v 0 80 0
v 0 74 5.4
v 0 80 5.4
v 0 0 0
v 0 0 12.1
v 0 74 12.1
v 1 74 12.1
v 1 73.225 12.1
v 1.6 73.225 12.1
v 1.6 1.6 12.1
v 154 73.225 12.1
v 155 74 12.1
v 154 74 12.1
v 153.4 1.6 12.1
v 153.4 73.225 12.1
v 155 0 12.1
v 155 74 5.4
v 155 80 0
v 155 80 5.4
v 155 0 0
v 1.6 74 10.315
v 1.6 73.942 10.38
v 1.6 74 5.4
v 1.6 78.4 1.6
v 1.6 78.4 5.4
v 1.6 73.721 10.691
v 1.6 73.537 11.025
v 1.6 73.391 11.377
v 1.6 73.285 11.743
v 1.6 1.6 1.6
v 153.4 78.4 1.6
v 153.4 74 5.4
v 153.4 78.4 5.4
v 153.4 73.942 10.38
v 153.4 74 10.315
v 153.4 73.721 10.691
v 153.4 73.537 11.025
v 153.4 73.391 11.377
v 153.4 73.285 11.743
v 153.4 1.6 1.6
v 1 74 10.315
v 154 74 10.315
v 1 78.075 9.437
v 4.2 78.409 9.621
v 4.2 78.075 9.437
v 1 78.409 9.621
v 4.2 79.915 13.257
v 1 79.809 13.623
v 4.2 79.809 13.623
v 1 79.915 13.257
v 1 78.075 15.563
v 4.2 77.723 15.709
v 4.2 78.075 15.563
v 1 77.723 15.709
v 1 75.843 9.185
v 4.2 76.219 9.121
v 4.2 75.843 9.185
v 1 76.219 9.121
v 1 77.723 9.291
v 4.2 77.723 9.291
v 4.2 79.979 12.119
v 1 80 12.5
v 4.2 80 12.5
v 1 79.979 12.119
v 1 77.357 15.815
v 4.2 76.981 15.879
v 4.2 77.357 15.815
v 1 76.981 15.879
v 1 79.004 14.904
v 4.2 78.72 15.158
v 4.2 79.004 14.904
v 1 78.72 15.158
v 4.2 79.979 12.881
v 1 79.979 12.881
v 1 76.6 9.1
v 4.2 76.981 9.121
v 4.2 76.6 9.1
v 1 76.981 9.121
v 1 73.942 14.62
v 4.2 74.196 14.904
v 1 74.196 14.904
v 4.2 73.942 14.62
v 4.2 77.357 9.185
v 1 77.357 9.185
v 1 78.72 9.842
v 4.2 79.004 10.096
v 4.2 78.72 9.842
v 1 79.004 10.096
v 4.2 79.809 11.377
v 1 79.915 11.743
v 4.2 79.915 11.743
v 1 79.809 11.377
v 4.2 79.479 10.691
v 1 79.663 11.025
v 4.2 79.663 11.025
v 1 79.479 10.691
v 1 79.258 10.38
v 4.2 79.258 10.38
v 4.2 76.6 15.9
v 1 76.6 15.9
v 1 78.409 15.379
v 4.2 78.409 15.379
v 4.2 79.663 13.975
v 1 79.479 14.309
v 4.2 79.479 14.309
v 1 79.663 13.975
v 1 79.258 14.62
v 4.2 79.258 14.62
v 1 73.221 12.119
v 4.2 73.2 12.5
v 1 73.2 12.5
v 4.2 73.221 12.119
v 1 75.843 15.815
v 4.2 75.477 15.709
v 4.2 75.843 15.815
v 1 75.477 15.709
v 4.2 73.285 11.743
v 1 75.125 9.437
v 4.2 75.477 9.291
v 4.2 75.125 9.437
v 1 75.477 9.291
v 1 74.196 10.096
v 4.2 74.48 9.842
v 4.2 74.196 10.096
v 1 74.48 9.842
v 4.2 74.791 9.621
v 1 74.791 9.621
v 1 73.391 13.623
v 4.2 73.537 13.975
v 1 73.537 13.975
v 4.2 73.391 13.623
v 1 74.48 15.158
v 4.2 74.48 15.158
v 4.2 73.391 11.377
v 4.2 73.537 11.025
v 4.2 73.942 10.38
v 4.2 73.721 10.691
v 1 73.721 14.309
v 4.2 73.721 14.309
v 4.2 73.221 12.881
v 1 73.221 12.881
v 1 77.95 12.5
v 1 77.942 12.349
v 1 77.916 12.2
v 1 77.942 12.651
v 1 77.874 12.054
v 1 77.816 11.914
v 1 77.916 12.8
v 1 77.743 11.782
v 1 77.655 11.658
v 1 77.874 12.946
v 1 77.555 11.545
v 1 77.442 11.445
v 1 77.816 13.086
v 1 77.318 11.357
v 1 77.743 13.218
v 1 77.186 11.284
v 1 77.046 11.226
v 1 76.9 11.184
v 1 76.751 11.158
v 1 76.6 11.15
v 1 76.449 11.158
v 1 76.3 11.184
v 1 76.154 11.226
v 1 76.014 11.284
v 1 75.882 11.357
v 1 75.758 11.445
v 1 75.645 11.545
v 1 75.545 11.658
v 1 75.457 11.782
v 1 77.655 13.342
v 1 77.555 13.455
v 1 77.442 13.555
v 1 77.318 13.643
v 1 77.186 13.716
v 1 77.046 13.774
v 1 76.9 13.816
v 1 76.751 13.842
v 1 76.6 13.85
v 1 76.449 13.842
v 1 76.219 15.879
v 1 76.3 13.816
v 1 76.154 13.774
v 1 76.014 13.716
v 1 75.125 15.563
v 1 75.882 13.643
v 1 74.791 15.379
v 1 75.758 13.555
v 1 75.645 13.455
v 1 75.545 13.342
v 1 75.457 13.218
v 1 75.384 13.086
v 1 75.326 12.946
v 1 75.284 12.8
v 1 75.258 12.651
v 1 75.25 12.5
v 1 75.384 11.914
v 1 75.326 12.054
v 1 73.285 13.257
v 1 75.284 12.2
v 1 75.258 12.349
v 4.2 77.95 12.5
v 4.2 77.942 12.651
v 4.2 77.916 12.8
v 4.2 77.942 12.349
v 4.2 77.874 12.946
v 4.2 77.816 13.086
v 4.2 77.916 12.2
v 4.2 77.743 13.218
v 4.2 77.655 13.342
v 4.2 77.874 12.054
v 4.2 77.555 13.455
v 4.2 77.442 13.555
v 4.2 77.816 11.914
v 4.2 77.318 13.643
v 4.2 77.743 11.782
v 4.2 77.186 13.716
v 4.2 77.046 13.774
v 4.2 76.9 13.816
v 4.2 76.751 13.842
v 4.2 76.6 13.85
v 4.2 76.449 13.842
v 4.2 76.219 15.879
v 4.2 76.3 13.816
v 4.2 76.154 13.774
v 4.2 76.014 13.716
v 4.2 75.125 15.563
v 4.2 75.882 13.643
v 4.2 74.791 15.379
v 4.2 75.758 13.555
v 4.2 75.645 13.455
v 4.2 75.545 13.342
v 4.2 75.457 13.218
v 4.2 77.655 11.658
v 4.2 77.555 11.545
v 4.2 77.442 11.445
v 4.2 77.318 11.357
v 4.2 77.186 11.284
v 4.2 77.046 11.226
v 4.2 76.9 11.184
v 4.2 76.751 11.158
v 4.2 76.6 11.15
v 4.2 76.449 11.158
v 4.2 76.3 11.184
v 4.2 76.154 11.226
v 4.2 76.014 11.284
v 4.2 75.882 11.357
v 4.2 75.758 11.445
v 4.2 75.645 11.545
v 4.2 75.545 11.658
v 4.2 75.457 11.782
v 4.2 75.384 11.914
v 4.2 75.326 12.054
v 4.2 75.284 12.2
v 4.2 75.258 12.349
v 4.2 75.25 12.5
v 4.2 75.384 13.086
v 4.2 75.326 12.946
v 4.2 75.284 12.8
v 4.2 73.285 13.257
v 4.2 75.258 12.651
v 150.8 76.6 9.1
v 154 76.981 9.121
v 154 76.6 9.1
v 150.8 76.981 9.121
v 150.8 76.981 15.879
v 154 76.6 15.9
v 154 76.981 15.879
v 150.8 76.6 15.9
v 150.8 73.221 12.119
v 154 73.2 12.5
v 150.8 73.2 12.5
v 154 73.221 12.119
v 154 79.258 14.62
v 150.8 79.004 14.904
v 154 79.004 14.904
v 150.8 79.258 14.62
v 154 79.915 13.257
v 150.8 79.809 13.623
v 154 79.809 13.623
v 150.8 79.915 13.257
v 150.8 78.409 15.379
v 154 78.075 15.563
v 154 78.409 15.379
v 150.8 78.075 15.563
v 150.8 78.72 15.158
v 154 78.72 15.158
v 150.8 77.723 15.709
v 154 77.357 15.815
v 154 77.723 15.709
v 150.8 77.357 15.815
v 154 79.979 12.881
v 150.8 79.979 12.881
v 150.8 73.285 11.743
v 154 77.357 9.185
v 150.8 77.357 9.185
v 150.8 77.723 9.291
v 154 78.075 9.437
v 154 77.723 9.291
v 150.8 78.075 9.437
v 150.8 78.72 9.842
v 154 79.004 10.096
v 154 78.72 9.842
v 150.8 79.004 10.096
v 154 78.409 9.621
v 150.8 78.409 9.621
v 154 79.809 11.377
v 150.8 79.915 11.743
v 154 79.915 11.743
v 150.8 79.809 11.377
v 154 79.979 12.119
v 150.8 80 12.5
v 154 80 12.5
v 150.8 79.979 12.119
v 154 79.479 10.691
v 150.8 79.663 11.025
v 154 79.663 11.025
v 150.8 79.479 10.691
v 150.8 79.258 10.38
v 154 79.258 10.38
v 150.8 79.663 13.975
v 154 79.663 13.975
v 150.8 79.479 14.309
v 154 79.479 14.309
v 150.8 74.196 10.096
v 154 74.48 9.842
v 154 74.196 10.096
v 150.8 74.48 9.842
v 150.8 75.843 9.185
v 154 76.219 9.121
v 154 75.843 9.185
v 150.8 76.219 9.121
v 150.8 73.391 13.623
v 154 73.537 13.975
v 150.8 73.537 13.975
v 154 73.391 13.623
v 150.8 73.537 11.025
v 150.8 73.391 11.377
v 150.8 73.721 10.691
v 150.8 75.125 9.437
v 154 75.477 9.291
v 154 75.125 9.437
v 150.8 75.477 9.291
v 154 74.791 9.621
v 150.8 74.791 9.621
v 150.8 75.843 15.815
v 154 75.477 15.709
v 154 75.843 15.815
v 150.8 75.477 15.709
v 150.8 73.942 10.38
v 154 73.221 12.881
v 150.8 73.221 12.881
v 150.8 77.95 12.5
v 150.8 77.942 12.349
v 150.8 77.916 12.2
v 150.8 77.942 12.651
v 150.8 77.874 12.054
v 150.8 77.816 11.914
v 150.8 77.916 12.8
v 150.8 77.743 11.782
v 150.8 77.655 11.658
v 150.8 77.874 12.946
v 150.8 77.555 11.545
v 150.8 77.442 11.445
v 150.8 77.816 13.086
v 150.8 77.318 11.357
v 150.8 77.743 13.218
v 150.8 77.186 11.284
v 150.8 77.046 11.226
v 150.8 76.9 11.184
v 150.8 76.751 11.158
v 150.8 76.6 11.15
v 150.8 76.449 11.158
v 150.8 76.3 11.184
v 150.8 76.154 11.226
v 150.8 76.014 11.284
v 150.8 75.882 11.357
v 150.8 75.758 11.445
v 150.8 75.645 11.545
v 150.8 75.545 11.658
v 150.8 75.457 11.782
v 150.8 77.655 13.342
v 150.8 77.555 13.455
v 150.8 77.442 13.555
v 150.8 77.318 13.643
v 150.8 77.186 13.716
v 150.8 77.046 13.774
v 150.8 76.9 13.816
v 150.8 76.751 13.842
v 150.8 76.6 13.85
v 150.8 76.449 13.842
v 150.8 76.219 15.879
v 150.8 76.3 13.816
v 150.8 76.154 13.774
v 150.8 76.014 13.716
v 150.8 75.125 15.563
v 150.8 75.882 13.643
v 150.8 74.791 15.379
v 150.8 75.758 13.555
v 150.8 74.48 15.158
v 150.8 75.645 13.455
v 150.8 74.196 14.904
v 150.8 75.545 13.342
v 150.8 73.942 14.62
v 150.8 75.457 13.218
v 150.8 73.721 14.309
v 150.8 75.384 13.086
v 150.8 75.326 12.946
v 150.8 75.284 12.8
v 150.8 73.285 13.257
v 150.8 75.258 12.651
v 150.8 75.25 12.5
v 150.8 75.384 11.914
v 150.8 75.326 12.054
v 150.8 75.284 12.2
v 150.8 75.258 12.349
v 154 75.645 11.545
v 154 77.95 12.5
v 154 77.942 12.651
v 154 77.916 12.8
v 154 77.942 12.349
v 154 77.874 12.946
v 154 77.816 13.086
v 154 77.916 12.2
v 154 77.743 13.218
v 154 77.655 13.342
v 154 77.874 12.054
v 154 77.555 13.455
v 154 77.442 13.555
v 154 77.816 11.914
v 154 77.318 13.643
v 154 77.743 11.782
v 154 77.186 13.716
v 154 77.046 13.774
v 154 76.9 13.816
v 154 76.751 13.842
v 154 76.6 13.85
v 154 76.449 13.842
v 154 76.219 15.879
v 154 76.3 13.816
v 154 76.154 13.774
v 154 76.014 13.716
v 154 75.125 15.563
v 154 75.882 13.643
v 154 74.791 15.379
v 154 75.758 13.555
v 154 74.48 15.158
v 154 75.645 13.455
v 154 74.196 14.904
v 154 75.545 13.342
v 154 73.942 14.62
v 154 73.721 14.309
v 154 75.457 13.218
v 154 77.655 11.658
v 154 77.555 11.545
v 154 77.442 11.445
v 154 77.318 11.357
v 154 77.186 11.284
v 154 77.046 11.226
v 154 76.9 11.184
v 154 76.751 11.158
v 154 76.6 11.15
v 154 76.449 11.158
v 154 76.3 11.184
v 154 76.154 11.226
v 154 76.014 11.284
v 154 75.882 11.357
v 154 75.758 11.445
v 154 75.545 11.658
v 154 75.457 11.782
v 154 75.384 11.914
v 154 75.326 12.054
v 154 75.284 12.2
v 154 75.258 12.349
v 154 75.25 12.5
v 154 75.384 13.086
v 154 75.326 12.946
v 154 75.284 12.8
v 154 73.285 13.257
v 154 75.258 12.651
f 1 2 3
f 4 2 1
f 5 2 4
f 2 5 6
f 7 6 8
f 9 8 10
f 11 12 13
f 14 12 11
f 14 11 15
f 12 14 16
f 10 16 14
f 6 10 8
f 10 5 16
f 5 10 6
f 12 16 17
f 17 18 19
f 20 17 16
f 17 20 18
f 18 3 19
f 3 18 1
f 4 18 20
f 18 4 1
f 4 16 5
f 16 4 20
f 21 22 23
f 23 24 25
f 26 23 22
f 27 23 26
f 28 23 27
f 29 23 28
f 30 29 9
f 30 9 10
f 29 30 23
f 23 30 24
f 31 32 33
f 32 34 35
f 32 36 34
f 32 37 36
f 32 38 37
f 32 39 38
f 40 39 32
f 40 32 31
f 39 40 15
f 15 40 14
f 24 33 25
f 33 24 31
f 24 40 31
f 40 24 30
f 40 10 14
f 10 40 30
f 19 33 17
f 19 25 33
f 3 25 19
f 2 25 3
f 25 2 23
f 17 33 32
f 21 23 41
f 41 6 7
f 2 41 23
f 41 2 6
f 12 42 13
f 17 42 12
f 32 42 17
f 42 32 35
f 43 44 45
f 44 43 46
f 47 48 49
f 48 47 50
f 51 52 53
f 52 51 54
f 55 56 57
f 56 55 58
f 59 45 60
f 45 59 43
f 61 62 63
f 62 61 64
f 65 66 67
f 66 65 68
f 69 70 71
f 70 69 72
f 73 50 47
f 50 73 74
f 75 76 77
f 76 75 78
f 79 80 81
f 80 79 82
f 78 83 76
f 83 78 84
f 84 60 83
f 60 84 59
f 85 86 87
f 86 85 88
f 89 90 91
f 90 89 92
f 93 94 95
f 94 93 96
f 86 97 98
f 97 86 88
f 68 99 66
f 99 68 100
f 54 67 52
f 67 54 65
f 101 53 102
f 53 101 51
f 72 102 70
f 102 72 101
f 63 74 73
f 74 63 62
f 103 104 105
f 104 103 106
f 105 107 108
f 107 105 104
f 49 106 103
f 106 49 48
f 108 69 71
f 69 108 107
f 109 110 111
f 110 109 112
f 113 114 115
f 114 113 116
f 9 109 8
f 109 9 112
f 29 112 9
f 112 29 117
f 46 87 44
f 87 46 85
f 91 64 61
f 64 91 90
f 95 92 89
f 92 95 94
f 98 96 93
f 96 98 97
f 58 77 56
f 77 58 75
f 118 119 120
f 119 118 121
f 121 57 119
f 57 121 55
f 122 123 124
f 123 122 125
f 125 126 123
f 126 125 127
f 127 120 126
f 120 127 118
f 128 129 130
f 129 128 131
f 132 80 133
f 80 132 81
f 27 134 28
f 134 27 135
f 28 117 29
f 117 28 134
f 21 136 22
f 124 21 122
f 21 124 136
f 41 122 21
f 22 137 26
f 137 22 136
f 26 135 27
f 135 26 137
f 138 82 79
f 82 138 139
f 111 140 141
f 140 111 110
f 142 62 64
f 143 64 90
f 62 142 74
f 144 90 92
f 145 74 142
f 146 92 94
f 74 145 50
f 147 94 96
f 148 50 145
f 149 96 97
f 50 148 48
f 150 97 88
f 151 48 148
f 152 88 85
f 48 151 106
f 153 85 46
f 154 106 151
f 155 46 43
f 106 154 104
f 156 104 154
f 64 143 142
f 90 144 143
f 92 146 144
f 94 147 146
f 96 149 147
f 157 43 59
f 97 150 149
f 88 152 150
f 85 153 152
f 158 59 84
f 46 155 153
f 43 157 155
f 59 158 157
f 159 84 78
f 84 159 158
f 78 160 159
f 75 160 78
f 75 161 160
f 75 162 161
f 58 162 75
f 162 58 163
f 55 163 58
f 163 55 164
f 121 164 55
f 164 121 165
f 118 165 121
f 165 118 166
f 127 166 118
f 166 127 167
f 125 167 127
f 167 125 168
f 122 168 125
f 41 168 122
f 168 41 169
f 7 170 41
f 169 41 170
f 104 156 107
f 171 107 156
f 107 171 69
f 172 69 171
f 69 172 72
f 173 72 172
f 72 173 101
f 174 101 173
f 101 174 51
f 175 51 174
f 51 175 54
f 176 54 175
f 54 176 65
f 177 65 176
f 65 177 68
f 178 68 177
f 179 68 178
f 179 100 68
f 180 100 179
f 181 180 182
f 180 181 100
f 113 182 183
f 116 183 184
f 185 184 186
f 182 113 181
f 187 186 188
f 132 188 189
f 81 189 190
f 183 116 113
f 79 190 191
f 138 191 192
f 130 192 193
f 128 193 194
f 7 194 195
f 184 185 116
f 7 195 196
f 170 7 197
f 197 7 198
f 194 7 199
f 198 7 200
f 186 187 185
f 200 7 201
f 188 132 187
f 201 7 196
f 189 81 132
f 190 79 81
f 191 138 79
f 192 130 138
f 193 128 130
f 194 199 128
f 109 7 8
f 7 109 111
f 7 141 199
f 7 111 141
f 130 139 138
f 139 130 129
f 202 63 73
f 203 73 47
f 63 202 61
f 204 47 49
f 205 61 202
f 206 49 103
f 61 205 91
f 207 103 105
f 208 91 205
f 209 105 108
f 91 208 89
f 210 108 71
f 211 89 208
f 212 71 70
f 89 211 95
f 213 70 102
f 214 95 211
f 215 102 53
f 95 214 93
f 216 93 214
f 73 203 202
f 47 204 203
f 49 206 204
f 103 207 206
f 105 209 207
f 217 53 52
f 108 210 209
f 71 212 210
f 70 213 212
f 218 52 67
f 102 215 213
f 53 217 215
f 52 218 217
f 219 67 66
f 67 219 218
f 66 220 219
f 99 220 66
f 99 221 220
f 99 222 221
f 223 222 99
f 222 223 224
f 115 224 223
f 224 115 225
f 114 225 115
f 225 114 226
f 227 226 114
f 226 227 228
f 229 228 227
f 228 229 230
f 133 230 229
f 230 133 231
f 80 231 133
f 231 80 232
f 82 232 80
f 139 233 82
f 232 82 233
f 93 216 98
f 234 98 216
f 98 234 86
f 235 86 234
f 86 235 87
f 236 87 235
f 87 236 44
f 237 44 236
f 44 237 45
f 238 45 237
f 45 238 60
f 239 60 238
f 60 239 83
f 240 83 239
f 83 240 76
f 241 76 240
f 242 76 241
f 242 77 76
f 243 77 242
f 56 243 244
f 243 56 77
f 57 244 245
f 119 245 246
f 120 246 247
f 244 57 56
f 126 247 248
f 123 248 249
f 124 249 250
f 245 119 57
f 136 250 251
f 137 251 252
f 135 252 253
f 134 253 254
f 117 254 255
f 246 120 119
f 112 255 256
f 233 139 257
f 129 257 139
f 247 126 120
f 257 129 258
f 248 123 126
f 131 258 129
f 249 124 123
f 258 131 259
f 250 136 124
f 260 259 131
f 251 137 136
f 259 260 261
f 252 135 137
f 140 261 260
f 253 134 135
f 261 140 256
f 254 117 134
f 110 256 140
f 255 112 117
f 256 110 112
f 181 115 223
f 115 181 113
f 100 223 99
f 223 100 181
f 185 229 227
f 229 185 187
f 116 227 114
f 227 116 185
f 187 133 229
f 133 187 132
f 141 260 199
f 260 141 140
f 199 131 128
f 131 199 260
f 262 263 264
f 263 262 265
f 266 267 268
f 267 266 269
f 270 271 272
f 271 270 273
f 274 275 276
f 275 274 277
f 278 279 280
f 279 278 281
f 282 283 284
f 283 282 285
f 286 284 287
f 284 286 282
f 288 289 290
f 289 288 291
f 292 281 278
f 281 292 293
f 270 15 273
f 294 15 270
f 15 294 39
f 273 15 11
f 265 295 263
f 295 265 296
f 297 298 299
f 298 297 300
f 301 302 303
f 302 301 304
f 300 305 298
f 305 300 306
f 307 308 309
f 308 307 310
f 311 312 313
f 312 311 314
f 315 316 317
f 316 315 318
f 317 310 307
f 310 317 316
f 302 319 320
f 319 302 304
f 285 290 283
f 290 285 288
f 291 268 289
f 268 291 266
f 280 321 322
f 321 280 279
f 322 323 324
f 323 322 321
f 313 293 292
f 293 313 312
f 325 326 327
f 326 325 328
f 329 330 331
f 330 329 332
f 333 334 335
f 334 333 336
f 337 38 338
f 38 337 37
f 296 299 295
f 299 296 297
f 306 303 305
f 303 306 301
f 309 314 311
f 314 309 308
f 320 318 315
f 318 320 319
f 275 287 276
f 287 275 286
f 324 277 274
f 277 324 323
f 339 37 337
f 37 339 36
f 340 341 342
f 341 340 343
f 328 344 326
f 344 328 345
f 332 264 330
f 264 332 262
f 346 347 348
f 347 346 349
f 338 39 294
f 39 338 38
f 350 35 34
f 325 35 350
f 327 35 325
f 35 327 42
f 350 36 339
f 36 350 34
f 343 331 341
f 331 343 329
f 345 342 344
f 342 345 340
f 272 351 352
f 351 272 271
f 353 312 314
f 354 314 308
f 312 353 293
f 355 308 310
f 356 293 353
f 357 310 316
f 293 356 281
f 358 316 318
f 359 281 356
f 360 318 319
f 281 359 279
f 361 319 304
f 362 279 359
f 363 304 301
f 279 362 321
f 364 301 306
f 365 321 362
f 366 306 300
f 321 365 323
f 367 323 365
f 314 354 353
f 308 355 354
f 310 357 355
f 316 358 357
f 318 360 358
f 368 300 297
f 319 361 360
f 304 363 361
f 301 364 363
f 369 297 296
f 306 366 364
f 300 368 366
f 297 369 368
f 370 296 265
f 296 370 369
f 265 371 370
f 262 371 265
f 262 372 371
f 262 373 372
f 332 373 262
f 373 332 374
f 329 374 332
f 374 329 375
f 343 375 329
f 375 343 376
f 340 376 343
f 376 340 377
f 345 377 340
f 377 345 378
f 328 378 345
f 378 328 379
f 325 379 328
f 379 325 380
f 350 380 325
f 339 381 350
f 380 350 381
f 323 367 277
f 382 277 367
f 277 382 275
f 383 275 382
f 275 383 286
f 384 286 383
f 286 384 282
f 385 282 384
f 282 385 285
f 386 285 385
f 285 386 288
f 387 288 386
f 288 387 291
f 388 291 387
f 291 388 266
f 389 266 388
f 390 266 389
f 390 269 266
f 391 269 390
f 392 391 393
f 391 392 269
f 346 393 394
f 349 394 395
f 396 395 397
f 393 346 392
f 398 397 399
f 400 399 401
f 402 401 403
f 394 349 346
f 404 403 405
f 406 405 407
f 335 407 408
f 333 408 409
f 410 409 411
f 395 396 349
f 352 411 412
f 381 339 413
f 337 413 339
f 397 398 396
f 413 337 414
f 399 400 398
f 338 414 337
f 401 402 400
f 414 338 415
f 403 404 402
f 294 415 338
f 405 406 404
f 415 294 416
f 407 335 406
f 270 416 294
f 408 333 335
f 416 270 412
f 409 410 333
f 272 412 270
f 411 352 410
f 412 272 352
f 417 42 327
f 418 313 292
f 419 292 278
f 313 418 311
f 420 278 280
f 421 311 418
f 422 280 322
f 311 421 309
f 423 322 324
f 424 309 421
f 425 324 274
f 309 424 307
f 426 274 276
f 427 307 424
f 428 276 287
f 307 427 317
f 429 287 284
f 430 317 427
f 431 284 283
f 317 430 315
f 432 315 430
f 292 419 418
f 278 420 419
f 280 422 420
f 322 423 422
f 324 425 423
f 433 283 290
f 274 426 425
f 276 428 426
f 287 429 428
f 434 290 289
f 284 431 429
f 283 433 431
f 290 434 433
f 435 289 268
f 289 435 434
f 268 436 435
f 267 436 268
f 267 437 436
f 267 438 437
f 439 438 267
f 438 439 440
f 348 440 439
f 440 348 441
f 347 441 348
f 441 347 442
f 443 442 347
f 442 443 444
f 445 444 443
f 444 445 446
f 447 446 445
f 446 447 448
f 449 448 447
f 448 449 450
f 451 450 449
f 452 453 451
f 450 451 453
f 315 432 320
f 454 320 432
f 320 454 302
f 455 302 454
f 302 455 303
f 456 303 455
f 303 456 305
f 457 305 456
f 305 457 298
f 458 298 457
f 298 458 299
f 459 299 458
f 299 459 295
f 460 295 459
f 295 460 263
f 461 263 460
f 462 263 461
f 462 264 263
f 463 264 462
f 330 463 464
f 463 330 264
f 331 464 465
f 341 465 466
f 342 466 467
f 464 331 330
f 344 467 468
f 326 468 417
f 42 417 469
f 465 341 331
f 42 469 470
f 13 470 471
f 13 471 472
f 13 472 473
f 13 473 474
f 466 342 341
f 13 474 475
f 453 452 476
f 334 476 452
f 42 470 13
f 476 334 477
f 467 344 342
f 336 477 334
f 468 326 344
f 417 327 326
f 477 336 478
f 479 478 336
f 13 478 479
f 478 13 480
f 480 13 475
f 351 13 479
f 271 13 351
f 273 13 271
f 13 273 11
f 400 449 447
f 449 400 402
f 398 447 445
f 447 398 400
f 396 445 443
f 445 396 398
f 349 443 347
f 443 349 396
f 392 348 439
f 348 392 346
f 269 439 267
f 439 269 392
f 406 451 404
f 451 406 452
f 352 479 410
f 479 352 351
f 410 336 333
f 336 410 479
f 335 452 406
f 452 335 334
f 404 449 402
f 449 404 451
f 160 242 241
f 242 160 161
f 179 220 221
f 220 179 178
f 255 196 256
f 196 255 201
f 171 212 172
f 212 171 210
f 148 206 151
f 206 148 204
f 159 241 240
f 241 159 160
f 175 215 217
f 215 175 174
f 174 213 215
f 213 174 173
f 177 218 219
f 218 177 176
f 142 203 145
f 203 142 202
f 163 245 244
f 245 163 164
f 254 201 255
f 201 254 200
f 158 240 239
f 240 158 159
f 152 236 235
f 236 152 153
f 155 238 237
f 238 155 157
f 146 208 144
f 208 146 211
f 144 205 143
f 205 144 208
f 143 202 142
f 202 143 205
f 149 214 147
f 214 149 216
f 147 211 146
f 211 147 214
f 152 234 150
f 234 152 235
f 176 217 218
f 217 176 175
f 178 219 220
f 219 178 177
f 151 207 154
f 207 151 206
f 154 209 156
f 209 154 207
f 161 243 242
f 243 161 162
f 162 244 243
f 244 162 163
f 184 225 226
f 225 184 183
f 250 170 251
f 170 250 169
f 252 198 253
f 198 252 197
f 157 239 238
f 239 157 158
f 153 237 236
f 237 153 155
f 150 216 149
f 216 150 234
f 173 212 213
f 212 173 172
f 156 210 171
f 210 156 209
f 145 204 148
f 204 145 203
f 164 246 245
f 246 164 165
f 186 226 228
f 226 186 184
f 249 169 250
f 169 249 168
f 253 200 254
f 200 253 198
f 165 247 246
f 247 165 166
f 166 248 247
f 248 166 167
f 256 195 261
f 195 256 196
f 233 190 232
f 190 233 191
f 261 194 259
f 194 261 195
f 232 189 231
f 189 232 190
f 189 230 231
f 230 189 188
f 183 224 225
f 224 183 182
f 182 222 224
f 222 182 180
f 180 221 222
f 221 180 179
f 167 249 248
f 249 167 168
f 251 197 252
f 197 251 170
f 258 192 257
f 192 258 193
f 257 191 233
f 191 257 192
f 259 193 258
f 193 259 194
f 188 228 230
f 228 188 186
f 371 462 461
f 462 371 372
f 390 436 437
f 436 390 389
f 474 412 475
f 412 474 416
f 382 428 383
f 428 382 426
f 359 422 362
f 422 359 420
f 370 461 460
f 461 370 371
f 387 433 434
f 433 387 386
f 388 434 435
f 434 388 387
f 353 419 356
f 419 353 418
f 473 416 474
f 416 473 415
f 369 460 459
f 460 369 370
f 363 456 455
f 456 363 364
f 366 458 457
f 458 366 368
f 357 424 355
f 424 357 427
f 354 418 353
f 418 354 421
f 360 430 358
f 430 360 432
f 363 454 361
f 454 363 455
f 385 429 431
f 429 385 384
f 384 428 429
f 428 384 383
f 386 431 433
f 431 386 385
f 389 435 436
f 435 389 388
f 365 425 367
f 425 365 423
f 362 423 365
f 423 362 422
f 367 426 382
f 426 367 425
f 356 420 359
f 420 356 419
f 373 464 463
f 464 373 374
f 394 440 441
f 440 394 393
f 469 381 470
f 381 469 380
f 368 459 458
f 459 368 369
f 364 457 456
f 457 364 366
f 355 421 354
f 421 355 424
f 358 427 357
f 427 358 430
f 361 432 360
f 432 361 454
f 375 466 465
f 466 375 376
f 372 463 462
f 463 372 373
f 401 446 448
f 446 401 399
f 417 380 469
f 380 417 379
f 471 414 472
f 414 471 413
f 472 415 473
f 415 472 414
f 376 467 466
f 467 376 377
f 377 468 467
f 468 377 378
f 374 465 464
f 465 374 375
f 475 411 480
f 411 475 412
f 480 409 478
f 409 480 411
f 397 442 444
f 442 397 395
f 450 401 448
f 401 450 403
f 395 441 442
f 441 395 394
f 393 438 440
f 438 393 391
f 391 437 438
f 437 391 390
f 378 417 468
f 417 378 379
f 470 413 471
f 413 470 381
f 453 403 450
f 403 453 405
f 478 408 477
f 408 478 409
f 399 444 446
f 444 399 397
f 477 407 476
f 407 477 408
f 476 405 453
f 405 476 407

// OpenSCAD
// Native Mecha-Splicer side-pin hinge. CAD ONLY; no metal pin, no verified flex/stop/torque.
// Hinge is fully enclosed in the declared closed XY silhouette.
$fn=56;
W=155.0; D=80.0; wall=1.6; floor=1.6;
HBASE=12.1; HLID=5.1; gap=0.8;
hy=76.6; hz=12.5;
kr=3.4; bore=2.7;

module base_shell() {
  difference() {
    union() {
      difference() {
        cube([W,D,HBASE]);
        translate([wall,wall,floor]) cube([W-2*wall,D-2*wall,HBASE+1]);
        // Remove the upper rear wall in swing zone (shell only).
        translate([-0.1,74.0,HBASE-6.7]) cube([W+0.2,6.1,6.9]);
      }
// Side pivot barrels tie into the rear shell wall at both ends.
      translate([1.0,hy,hz]) rotate([0,90,0]) cylinder(h=3.2,r=3.4);
      translate([150.8,hy,hz]) rotate([0,90,0]) cylinder(h=3.2,r=3.4);
    }
// Sculpt relief for the rotating *lid* barrels within the base wall.
    translate([4.680000000000001,hy,hz]) rotate([0,90,0]) cylinder(h=3.64,r=3.75);
    translate([146.68,hy,hz]) rotate([0,90,0]) cylinder(h=3.64,r=3.75);
    translate([0.88,hy,hz]) rotate([0,90,0]) cylinder(h=3.4400000000000004,d=bore);
    translate([150.68,hy,hz]) rotate([0,90,0]) cylinder(h=3.4400000000000004,d=bore);
// Rear center FPC pass-through (bend, EMC and flex cycles NOT VERIFIED).
    translate([63.5,D-wall-0.1,HBASE-3.5]) cube([28,wall+0.2,4.1]);
  }
}
base_shell();
